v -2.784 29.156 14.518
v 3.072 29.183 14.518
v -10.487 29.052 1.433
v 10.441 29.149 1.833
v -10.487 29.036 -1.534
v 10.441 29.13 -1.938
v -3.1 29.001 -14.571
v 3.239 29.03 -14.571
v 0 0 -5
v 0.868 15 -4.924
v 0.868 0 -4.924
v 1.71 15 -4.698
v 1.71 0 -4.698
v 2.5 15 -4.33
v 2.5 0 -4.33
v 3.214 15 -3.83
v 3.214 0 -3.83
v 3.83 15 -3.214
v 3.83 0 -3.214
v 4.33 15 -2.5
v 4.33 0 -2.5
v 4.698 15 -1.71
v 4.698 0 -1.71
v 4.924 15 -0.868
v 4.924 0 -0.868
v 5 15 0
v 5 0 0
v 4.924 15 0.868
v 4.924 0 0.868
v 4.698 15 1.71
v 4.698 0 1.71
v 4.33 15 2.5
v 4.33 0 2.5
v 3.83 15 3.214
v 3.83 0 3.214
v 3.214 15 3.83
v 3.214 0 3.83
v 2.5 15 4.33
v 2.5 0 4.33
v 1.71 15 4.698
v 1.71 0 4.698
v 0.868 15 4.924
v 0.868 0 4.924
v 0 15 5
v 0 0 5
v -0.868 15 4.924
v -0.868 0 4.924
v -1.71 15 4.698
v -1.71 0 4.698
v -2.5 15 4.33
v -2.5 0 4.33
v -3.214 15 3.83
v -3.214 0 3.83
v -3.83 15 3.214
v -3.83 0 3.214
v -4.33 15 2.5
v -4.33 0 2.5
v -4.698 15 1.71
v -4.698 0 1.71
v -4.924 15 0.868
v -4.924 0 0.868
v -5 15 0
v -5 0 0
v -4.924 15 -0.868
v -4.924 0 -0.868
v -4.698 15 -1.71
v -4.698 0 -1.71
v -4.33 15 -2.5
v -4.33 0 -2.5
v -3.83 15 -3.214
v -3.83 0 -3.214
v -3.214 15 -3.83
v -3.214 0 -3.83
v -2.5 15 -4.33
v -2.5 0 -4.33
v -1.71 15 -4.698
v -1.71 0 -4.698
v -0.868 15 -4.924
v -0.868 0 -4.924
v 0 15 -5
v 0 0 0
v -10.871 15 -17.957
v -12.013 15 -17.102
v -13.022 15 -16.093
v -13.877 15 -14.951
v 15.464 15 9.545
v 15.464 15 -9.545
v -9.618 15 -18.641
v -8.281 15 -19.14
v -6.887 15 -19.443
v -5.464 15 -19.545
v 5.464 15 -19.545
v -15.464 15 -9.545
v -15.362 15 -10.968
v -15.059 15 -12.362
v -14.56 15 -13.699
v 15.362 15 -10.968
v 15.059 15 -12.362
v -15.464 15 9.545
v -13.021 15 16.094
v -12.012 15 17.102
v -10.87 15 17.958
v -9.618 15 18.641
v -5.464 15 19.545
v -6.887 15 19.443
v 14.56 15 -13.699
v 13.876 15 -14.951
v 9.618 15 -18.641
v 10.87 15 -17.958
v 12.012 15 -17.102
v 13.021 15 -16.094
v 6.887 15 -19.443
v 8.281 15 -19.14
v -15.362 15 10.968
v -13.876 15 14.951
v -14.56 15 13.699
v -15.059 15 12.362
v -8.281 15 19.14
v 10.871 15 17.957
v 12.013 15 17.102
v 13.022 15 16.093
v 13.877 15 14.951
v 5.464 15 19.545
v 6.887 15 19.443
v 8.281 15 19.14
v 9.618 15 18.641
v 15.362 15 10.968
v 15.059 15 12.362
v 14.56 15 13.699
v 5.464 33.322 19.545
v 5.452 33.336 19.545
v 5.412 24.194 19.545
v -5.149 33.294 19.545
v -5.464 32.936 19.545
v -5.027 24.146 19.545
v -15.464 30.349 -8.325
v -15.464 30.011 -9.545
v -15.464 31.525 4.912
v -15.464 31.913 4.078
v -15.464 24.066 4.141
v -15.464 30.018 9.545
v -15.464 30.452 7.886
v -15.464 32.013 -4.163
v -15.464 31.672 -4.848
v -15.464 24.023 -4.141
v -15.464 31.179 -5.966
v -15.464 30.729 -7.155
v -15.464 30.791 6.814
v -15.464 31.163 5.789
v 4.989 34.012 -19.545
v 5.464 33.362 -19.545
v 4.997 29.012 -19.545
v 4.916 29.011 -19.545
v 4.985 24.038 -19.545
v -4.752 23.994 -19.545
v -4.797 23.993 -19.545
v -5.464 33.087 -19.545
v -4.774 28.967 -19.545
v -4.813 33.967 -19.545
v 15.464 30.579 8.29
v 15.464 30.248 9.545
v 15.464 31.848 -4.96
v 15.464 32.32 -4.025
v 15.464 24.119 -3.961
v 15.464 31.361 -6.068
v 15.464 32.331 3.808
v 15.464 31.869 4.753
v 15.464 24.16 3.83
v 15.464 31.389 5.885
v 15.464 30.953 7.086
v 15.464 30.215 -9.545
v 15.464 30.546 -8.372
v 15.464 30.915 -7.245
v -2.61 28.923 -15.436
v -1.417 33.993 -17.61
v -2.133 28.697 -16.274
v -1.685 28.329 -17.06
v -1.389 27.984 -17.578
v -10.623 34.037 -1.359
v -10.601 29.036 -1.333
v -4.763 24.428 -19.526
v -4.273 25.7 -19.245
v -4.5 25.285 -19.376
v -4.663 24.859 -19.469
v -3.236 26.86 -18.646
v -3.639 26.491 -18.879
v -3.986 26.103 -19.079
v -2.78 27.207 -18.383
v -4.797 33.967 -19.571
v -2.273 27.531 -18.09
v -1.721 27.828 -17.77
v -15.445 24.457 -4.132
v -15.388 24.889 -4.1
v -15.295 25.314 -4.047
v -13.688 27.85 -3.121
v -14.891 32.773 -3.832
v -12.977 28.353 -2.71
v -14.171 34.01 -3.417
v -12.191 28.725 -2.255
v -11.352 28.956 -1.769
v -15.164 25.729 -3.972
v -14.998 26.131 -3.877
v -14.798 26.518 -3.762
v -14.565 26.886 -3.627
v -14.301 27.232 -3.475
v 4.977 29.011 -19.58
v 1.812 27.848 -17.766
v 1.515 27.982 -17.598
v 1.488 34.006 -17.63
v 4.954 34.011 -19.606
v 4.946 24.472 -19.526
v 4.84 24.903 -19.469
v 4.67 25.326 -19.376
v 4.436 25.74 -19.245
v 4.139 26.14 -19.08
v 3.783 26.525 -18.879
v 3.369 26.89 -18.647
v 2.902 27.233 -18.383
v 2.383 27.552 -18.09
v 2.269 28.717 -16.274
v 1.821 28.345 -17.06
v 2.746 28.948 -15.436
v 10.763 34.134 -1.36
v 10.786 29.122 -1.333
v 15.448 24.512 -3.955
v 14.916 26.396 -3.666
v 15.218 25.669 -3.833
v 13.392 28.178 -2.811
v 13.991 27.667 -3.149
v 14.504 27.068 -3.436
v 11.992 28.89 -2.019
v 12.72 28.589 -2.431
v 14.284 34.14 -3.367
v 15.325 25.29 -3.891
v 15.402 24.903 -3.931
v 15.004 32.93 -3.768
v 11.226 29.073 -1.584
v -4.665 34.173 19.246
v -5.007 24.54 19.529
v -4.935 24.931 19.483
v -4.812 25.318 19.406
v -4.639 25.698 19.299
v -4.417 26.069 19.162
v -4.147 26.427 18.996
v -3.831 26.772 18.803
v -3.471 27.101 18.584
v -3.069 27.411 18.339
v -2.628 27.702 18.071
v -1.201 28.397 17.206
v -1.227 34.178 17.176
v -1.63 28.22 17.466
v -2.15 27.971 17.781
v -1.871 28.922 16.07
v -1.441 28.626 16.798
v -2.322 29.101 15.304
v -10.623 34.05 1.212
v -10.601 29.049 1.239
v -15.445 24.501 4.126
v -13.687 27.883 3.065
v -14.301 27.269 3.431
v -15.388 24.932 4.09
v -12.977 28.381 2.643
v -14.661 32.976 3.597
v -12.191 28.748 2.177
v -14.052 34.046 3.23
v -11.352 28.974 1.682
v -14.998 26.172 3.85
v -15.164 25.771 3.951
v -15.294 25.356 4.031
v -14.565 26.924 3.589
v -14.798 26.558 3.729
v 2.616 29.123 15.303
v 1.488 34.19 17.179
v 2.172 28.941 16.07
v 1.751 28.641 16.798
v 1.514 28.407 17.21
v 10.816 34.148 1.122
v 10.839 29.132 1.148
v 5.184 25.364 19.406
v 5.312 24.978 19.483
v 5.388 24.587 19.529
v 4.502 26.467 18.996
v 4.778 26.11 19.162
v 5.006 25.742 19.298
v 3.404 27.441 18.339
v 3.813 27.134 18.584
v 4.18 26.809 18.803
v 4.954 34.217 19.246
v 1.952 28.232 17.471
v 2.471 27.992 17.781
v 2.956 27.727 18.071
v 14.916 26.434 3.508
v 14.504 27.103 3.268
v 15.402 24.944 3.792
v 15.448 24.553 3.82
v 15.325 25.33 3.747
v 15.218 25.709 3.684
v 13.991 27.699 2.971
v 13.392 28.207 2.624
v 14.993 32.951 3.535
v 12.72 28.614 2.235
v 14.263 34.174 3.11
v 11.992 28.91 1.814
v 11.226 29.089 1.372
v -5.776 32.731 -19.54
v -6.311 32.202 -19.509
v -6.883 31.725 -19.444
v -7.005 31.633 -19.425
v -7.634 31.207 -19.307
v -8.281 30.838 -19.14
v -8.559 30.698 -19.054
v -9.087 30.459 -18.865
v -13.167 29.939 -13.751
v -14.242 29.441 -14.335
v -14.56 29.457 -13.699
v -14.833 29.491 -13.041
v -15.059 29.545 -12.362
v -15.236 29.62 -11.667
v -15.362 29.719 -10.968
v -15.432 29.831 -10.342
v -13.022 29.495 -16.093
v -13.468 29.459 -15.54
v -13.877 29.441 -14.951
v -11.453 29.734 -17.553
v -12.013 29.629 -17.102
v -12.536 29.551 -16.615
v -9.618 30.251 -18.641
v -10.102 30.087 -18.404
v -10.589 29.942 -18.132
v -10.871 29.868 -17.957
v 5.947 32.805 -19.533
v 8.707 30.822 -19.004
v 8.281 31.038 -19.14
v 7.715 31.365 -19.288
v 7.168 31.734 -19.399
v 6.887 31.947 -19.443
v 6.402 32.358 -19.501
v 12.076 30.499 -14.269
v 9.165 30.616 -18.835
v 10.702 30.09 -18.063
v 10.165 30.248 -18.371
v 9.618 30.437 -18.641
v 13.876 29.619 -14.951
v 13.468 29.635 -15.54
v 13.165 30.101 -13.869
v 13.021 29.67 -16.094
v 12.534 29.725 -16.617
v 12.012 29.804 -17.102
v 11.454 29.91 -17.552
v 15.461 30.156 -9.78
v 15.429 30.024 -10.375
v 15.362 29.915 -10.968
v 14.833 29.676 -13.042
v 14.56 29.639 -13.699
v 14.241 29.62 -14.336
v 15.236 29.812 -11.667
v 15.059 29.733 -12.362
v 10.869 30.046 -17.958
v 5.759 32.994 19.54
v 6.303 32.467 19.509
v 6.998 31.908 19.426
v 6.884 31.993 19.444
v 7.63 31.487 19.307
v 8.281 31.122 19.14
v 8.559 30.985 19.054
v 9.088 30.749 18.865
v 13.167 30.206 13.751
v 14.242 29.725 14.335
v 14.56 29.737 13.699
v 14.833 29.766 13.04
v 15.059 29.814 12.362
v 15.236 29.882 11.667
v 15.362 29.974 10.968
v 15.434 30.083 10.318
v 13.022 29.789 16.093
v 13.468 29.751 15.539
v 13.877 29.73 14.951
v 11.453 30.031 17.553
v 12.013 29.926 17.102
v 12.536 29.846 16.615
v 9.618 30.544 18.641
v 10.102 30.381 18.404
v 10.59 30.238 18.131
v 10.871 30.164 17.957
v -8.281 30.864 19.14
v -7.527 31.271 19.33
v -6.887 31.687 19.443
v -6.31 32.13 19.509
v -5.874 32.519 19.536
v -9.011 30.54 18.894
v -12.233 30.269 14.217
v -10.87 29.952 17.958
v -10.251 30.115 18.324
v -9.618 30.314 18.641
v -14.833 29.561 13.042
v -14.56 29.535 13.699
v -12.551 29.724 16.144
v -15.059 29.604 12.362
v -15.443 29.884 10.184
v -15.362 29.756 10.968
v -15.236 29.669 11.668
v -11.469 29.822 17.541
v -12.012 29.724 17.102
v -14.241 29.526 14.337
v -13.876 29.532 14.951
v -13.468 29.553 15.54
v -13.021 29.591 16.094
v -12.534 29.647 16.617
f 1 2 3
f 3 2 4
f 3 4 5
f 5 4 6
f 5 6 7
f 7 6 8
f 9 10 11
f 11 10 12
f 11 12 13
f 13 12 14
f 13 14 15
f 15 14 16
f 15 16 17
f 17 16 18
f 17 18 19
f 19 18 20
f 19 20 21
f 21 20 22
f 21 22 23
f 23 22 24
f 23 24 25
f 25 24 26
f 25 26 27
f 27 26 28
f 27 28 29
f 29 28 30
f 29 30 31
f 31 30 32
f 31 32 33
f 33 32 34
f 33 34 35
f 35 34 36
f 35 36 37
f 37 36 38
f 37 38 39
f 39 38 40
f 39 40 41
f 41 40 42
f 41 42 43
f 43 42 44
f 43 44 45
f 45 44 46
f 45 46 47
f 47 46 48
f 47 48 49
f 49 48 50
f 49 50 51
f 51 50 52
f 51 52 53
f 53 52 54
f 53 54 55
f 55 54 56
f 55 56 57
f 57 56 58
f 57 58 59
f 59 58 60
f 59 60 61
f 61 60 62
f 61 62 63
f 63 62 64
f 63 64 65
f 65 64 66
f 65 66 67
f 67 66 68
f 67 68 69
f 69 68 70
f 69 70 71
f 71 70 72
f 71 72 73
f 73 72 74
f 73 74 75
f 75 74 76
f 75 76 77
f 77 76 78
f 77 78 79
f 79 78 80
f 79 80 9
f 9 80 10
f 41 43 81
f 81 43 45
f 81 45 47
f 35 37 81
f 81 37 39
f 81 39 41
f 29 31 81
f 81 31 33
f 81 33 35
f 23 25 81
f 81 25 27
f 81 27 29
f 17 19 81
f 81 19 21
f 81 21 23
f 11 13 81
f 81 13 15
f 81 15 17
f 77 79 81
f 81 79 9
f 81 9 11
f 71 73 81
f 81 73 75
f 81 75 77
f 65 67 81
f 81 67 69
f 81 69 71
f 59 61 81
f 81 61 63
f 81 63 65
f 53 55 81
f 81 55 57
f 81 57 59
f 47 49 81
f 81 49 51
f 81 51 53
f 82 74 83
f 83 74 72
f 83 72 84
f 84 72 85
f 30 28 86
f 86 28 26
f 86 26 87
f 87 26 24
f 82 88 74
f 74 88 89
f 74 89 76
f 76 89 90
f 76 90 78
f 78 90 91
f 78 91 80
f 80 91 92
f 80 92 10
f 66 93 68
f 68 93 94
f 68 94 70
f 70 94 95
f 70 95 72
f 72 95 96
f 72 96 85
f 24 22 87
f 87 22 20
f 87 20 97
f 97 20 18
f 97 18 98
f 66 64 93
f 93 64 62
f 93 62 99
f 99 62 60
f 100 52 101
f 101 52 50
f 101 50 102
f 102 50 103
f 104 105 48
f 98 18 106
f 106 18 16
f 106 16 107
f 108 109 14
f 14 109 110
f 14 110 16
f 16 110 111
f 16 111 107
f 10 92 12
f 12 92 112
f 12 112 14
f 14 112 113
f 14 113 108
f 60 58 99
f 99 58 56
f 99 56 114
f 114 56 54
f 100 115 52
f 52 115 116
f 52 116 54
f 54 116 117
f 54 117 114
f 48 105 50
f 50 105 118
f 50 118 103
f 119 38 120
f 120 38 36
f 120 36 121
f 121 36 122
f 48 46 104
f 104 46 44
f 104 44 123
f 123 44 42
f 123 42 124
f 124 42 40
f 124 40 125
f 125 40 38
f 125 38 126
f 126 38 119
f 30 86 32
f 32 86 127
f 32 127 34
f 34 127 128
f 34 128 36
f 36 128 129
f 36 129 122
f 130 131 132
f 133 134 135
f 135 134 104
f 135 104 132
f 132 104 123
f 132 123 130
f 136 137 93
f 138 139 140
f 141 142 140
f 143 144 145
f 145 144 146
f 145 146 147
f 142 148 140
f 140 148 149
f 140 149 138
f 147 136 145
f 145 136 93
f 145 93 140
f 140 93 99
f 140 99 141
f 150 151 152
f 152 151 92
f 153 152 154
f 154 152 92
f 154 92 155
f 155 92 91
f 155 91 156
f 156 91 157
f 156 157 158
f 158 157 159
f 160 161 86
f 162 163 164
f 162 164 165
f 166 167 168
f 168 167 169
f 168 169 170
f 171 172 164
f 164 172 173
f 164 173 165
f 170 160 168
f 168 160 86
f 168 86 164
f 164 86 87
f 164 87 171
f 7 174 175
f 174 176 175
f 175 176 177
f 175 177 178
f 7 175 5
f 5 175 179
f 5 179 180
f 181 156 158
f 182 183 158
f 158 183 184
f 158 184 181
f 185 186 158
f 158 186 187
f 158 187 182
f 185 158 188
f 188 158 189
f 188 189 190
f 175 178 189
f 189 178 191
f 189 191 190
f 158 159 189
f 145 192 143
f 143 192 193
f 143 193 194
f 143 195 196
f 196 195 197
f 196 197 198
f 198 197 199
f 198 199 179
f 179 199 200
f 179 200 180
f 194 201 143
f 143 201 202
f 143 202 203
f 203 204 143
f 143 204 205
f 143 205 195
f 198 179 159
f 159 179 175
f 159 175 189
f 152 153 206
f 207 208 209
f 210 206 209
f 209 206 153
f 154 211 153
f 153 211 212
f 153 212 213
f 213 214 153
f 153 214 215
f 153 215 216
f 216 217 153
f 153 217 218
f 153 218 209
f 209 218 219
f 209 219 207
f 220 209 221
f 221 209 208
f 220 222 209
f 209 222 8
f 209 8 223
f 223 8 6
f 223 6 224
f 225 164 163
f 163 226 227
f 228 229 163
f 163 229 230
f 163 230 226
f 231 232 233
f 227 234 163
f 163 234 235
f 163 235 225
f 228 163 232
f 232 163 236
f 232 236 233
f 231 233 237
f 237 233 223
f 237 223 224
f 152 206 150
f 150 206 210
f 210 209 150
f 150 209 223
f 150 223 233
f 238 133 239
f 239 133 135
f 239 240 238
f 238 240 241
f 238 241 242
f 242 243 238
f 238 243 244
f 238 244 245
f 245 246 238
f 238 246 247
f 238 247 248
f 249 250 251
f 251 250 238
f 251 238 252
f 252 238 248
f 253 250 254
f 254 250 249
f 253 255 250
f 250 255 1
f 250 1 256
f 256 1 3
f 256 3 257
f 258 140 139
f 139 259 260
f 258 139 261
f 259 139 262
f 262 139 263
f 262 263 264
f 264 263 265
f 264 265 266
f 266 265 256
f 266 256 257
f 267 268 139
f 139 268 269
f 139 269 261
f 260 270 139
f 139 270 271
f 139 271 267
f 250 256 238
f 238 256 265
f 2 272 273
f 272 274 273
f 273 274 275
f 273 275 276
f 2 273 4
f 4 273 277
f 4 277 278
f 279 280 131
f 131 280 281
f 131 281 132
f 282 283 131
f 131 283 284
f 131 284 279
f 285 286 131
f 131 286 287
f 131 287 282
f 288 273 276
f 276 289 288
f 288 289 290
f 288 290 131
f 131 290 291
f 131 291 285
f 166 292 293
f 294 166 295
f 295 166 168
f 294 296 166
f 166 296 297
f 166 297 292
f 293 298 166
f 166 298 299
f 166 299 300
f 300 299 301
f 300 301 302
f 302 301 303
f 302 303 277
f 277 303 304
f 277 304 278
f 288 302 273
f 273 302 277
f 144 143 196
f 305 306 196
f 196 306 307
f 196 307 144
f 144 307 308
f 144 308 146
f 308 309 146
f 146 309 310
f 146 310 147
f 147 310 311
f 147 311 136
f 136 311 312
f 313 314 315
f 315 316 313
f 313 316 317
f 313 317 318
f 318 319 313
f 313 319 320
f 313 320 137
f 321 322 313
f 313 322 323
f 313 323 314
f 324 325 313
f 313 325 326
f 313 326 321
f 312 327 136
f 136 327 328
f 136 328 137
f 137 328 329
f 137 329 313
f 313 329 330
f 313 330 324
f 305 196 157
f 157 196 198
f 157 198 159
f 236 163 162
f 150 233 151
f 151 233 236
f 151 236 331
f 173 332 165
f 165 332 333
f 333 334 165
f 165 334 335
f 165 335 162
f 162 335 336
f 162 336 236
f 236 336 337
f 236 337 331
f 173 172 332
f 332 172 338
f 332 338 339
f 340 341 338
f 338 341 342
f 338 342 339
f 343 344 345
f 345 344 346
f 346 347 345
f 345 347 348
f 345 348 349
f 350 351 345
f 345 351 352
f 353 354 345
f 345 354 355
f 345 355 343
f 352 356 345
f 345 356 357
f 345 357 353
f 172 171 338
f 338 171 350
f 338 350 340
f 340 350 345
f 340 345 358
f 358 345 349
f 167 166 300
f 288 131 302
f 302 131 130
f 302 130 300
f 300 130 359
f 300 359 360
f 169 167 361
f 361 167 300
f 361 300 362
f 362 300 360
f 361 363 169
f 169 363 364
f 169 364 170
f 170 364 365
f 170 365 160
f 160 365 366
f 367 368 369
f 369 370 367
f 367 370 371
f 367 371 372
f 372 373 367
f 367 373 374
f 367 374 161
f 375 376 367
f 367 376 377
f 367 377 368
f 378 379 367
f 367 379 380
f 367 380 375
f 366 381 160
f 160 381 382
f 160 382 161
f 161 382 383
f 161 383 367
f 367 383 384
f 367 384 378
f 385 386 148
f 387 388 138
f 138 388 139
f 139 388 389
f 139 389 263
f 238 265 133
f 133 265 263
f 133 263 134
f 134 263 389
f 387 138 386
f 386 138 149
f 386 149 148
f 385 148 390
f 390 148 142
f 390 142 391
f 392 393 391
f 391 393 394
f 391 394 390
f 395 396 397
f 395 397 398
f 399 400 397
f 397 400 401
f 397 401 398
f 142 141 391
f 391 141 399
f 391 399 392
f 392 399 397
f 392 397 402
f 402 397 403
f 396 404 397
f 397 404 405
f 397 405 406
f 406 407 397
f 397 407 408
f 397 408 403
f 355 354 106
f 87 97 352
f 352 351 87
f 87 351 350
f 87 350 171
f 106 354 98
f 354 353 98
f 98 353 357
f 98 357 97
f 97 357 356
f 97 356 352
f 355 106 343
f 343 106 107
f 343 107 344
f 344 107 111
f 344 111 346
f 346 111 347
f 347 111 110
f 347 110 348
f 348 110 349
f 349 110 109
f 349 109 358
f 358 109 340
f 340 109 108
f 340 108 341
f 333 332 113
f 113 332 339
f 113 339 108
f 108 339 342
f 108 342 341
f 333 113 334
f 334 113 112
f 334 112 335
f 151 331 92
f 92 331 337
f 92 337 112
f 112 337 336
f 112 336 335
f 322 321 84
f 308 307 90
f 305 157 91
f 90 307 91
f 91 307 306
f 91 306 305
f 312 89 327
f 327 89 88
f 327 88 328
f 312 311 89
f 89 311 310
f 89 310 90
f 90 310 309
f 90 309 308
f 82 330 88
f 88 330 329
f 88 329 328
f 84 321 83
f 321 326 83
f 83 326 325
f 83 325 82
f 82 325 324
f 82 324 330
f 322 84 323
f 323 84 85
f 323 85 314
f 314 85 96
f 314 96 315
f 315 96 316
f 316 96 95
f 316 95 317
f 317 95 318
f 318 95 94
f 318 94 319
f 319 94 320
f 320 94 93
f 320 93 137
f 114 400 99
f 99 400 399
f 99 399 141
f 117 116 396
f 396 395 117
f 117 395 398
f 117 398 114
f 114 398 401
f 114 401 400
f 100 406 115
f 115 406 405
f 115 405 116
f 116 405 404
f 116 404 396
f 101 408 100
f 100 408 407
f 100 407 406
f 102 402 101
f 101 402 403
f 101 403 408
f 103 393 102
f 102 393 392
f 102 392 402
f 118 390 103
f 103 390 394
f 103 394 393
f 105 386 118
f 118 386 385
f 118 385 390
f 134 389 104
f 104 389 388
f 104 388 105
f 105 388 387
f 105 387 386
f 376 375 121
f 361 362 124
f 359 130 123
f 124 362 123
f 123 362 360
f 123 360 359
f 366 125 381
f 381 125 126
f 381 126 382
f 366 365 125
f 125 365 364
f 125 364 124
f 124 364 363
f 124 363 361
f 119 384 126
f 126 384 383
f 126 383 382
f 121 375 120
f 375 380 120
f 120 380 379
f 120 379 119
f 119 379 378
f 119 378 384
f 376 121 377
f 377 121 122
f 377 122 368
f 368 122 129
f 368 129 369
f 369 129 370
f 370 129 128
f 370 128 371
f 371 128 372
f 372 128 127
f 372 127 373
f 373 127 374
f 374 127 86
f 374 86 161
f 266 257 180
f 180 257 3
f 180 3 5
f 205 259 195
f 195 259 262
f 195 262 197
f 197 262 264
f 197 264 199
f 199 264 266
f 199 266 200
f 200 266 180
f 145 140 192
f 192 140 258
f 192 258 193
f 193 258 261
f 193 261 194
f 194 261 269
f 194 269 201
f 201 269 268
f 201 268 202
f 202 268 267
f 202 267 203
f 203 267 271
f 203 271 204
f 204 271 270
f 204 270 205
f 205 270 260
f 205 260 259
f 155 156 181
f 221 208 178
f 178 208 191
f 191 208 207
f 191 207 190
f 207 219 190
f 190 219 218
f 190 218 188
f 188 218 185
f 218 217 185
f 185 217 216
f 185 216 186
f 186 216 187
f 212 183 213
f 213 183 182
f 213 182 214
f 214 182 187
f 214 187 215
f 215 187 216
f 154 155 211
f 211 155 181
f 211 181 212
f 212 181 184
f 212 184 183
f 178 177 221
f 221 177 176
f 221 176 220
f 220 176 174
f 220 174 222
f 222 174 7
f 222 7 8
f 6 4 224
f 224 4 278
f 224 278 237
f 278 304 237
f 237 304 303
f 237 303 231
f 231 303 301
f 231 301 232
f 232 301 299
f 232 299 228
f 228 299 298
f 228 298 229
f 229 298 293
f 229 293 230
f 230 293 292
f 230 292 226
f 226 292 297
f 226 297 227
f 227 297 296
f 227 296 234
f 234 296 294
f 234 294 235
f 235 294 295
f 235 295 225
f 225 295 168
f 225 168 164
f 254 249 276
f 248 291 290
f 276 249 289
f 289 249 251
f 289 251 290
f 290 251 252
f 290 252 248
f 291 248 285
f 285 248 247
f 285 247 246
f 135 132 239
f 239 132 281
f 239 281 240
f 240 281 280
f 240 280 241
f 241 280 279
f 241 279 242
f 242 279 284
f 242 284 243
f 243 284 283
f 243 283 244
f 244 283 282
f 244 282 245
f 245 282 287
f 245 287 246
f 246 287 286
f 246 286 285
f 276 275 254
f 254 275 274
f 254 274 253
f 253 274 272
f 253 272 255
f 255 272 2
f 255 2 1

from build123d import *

# Parameters (mm, degrees)
SKETCH1_R           = 5
BOSS_EXTRUDE1_DEPTH = 15
BOSS_EXTRUDE2_REACH = 18.583
SKETCH3_W           = 30.927843762
SKETCH3_H           = 39.089679092
BOSS_EXTRUDE3_DEPTH = 5
FILLET3_R           = 10
FILLET4_R           = 10
FILLET5_R           = 5


with BuildPart() as part:
    # Sketch1 → Boss-Extrude1 (new body)
    with BuildSketch(Plane(origin=(0, 0, 0), x_dir=(1, 0, 0), z_dir=(0, 1, 0))):
        with Locations(Location((0, 0, 0), (0, 0, 270))):
            Circle(SKETCH1_R)
    extrude(amount=BOSS_EXTRUDE1_DEPTH)

    # Boss-Extrude2: up to this plane
    boss_extrude2_end = Plane(origin=(-9.846603066, 29.165234705, 22.263489811), z_dir=(0.00455125846969128, -0.999975636016732, 0.005292770472472197))
    # Sketch3 → Boss-Extrude2 (add, up to the surface)
    with BuildSketch(Plane(origin=(0, 15, 0), x_dir=(0.9999999999274632, 0, -1.2044654693728269e-05), z_dir=(0, 1, 0)), mode=Mode.PRIVATE) as boss_extrude2_sk1:
        Rectangle(SKETCH3_W, SKETCH3_H)
    boss_extrude2_tool1 = split(extrude(boss_extrude2_sk1.sketch, amount=BOSS_EXTRUDE2_REACH, mode=Mode.PRIVATE), bisect_by=boss_extrude2_end, keep=Keep.BOTH, mode=Mode.PRIVATE)
    add(boss_extrude2_tool1.solids().sort_by_distance((0, 15, 0))[0])

    # Sketch4 → Boss-Extrude3 (add)
    with BuildSketch(Plane(origin=(-0.13240295, 29.090794233, -0.153974648), x_dir=(0.999989642969537, 0.004551194719768432, -2.408901593164283e-05), z_dir=(-0.00455125846969128, 0.9999756360167321, -0.005292770472472199))):
        Polygon((-10.468446008, 1.179056561), (-14.015647607, 3.23739849), (-4.642053476, 19.39119083), (-1.261524033, 17.429564094), align=None)
        Polygon((1.642950919, 17.449824818), (10.918190552, 1.179056561), (14.439586423, 3.186447364), (5.10941674, 19.425902448), align=None)
        Polygon((-4.509809714, -19.426615257), (-1.0720352, -17.35621268), (-10.468446008, -1.392474744), (-13.897089917, -3.410607765), align=None)
        Polygon((1.642950919, -17.359692849), (5.10941674, -19.426615257), (14.418460095, -3.291199551), (10.971474425, -1.302521996), align=None)
    extrude(amount=BOSS_EXTRUDE3_DEPTH)

    # Fillet3
    # the kernel refuses this fillet: 10 mm, written as the material it adds along each edge
    with BuildSketch(Plane(origin=(-14.147905396, 29.009871307, -3.390990168), x_dir=(-0.8649200924486613, -0.00659289857656894, -0.5018662843496846), z_dir=(0.501888951586844, -0.0022937003490612054, -0.8649290255354872))) as fillet3_piece_1_section:
        with BuildLine():
            CenterArc((8.660254038, 10), FILLET3_R, 210, 60)
            Line((0, 5), (0, 0))
            Line((0, 0), (8.660254038, 0))
        make_face()
    fillet3_piece_1 = extrude(amount=40.327071422, mode=Mode.PRIVATE)
    fillet3_piece_1 = split(fillet3_piece_1, bisect_by=Plane(origin=(-14.148099961, 29.009871307, -19.544669139), z_dir=(1.2044654693728269e-05, 0, 0.9999999999274632)), keep=Keep.TOP, mode=Mode.PRIVATE)
    fillet3_piece_1 = split(fillet3_piece_1, bisect_by=Plane(origin=(-15.463962725, 29.009871307, -3.390974317), z_dir=(0.9999999999274632, 0, -1.2044654693728269e-05)), keep=Keep.TOP, mode=Mode.PRIVATE)
    add(fillet3_piece_1)
    with BuildSketch(Plane(origin=(25.092607476, 29.288095335, 15.431577947), x_dir=(0.8670707080024372, 0.0013095245658877922, -0.4981833723334847), z_dir=(-0.4981643035891815, -0.006856567533653001, -0.8670555426909873))) as fillet3_piece_2_section:
        with BuildLine():
            CenterArc((8.660254038, -10), FILLET3_R, 90, 60)
            Line((0, -5), (0, 0))
            Line((0, 0), (8.660254038, 0))
        make_face()
    fillet3_piece_2 = extrude(amount=61.99000894, mode=Mode.PRIVATE)
    fillet3_piece_2 = split(fillet3_piece_2, bisect_by=Plane(origin=(25.092186194, 29.288095335, -19.545141774), z_dir=(1.2044654693728269e-05, 0, 0.9999999999274632)), keep=Keep.TOP, mode=Mode.PRIVATE)
    fillet3_piece_2 = split(fillet3_piece_2, bisect_by=Plane(origin=(15.464107751, 29.288095335, 15.431693919), z_dir=(-0.9999999999274632, 0, 1.2044654693728269e-05)), keep=Keep.TOP, mode=Mode.PRIVATE)
    fillet3_piece_2 = split(fillet3_piece_2, bisect_by=Plane(origin=(14.370532456, 29.1397437, -3.376924296), z_dir=(-0.4952342540982205, -0.006852107536017414, -0.8687324571984713)), keep=Keep.TOP, mode=Mode.PRIVATE)
    add(fillet3_piece_2)
    with BuildSketch(Plane(origin=(-5.84236608, 29.266886921, 38.025636113), x_dir=(0.8661731369644169, 0.006587138984293146, 0.49970061677090505), z_dir=(0.49972330628815326, -0.0023101889389853464, -0.8661820133086942))) as fillet3_piece_3_section:
        with BuildLine():
            CenterArc((8.660254038, -10), FILLET3_R, 90, 60)
            Line((0, -5), (0, 0))
            Line((0, 0), (8.660254038, 0))
        make_face()
    fillet3_piece_3 = extrude(amount=40.27883759, mode=Mode.PRIVATE)
    fillet3_piece_3 = split(fillet3_piece_3, bisect_by=Plane(origin=(15.464379885, 29.266886921, 38.02537948), z_dir=(-0.9999999999274632, 0, 1.2044654693728269e-05)), keep=Keep.TOP, mode=Mode.PRIVATE)
    fillet3_piece_3 = split(fillet3_piece_3, bisect_by=Plane(origin=(-5.842588674, 29.266886921, 19.54490992), z_dir=(-1.2044654693728269e-05, 0, -0.9999999999274632)), keep=Keep.TOP, mode=Mode.PRIVATE)
    fillet3_piece_3 = split(fillet3_piece_3, bisect_by=Plane(origin=(5.244381098, 29.218930921, 19.431690955), z_dir=(0.5121278759381178, -0.0022152218479130122, -0.8589063578058298)), keep=Keep.TOP, mode=Mode.PRIVATE)
    add(fillet3_piece_3)
    with BuildSketch(Plane(origin=(-24.977156683, 28.89690852, -15.421232823), x_dir=(-0.8627222599150277, -0.0012500727128449166, 0.5056765167232111), z_dir=(0.5056575800810756, 0.006867655432883244, 0.8627069299683444))) as fillet3_piece_4_section:
        with BuildLine():
            CenterArc((8.660254038, -10), FILLET3_R, 90, 60)
            Line((0, -5), (0, 0))
            Line((0, 0), (8.660254038, 0))
        make_face()
    fillet3_piece_4 = extrude(amount=61.865578029, mode=Mode.PRIVATE)
    fillet3_piece_4 = split(fillet3_piece_4, bisect_by=Plane(origin=(-15.464107627, 28.89690852, -15.421347404), z_dir=(0.9999999999274632, 0, -1.2044654693728269e-05)), keep=Keep.TOP, mode=Mode.PRIVATE)
    fillet3_piece_4 = split(fillet3_piece_4, bisect_by=Plane(origin=(-24.976735525, 28.89690852, 19.545140384), z_dir=(-1.2044654693728269e-05, 0, -0.9999999999274632)), keep=Keep.TOP, mode=Mode.PRIVATE)
    fillet3_piece_4 = split(fillet3_piece_4, bisect_by=Plane(origin=(-13.994792141, 29.045647238, 3.236578891), z_dir=(0.5072545599631075, 0.006869958912506911, 0.8617688872668674)), keep=Keep.TOP, mode=Mode.PRIVATE)
    fillet3_piece_4 = split(fillet3_piece_4, bisect_by=Plane(origin=(-4.231441732, 29.173650955, 19.025109137), z_dir=(-0.5159074727393343, -0.006882071338550758, -0.8566166684496653)), keep=Keep.TOP, mode=Mode.PRIVATE)
    add(fillet3_piece_4)

    # Fillet4
    fillet4_edges = [part.edges().sort_by_distance(p)[0] for p in [
        (15.463686469, 22.029571456, -19.545025802),
        (-15.464157291, 21.959190422, -19.544653287),
        (-15.463686469, 22.062640363, 19.545025802),
        (15.464157291, 22.133021398, 19.544653287),
    ]]
    fillet(fillet4_edges, radius=FILLET4_R)

    # Fillet5
    # the kernel refuses this fillet: 5 mm, written as the material it takes off along each edge
    with BuildSketch(Plane(origin=(-15.464121796, 28.933978949, -16.597696934), x_dir=(6.375187728904126e-08, -0.9999859926119807, 0.00529288010702584), z_dir=(1.2044485979576416e-05, 0.005292880107409781, 0.999985992539445))) as fillet5_piece_1_section:
        with BuildLine():
            CenterArc((FILLET5_R * 0.995459114993, FILLET5_R), FILLET5_R, 180.260765149, 89.739234851)
            Line((-FILLET5_R * 0.00453052826693, FILLET5_R * 0.99544880528), (0, 0))
            Line((0, 0), (FILLET5_R * 0.995459114992, 0))
        make_face()
    fillet5_piece_1 = extrude(amount=33.142551861, mode=Mode.PRIVATE)
    fillet5_piece_1 = split(fillet5_piece_1, bisect_by=Plane(origin=(-6.415383651, 29.056529763, -1.224900675), z_dir=(-0.507254559962968, -0.006869958912999567, -0.8617688872669456)), keep=Keep.TOP, mode=Mode.PRIVATE)
    fillet5_piece_1 = split(fillet5_piece_1, bisect_by=Plane(origin=(-5.235440397, 29.011205363, -10.802781085), z_dir=(0.8700521889032995, 0.006568882911342859, 0.4929158532263639)), keep=Keep.TOP, mode=Mode.PRIVATE)
    add(fillet5_piece_1, mode=Mode.SUBTRACT)
    with BuildSketch(Plane(origin=(-15.464121796, 28.933978949, -16.597696934), x_dir=(6.375187728904126e-08, -0.9999859926119807, 0.00529288010702584), z_dir=(1.2044485979576416e-05, 0.005292880107409781, 0.999985992539445))) as fillet5_piece_2_section:
        with BuildLine():
            CenterArc((FILLET5_R * 0.995459114993, FILLET5_R), FILLET5_R, 180.260765149, 89.739234851)
            Line((-FILLET5_R * 0.00453052826693, FILLET5_R * 0.99544880528), (0, 0))
            Line((0, 0), (FILLET5_R * 0.995459114992, 0))
        make_face()
    fillet5_piece_2 = extrude(amount=33.142551861, mode=Mode.PRIVATE)
    fillet5_piece_2 = split(fillet5_piece_2, bisect_by=Plane(origin=(-20.86567334, 28.95866477, -7.288947062), z_dir=(-0.5018889515871722, 0.002293700349000787, 0.8649290255352967)), keep=Keep.TOP, mode=Mode.PRIVATE)
    fillet5_piece_2 = split(fillet5_piece_2, bisect_by=Plane(origin=(-19.64947868, 28.927969608, -14.134063493), z_dir=(0.8617842522597962, 0.0012373509900901443, -0.507273468180183)), keep=Keep.TOP, mode=Mode.PRIVATE)
    add(fillet5_piece_2, mode=Mode.SUBTRACT)
    with BuildSketch(Plane(origin=(-15.464121796, 28.933978949, -16.597696934), x_dir=(6.375187728904126e-08, -0.9999859926119807, 0.00529288010702584), z_dir=(1.2044485979576416e-05, 0.005292880107409781, 0.999985992539445))) as fillet5_piece_3_section:
        with BuildLine():
            CenterArc((FILLET5_R * 0.995459114993, FILLET5_R), FILLET5_R, 180.260765149, 89.739234851)
            Line((-FILLET5_R * 0.00453052826693, FILLET5_R * 0.99544880528), (0, 0))
            Line((0, 0), (FILLET5_R * 0.995459114992, 0))
        make_face()
    fillet5_piece_3 = extrude(amount=33.142551861, mode=Mode.PRIVATE)
    fillet5_piece_3 = split(fillet5_piece_3, bisect_by=Plane(origin=(-6.415383651, 29.056529763, -1.224900675), z_dir=(-0.507254559962968, -0.006869958912999567, -0.8617688872669456)), keep=Keep.TOP, mode=Mode.PRIVATE)
    fillet5_piece_3 = split(fillet5_piece_3, bisect_by=Plane(origin=(-20.86567334, 28.95866477, -7.288947062), z_dir=(-0.5018889515871722, 0.002293700349000787, 0.8649290255352967)), keep=Keep.TOP, mode=Mode.PRIVATE)
    add(fillet5_piece_3, mode=Mode.SUBTRACT)
    with BuildSketch(Plane(origin=(17.349750172, 29.067726965, -19.545048519), x_dir=(-1.2044529946827532e-05, 0.005292770472472884, 0.9999859931197312), z_dir=(-0.9999896428970009, -0.00455125846969128, 1.2044529946872691e-05))) as fillet5_piece_4_section:
        with BuildLine():
            CenterArc((FILLET5_R * 0.994721107865, -FILLET5_R), FILLET5_R, 90, 89.696742033)
            Line((-FILLET5_R * 0.00526488503663, -FILLET5_R * 0.99470717471), (0, 0))
            Line((0, 0), (FILLET5_R * 0.994721107865, 0))
        make_face()
    fillet5_piece_4 = extrude(amount=34.558401512, mode=Mode.PRIVATE)
    fillet5_piece_4 = split(fillet5_piece_4, bisect_by=Plane(origin=(14.300125636, 29.025532074, -24.894653871), z_dir=(-0.49523425409822125, -0.006852107536017416, -0.8687324571984709)), keep=Keep.TOP, mode=Mode.PRIVATE)
    fillet5_piece_4 = split(fillet5_piece_4, bisect_by=Plane(origin=(4.001876218, 28.966950687, -27.107099121), z_dir=(0.8700521889032995, 0.006568882911342859, 0.4929158532263639)), keep=Keep.TOP, mode=Mode.PRIVATE)
    add(fillet5_piece_4, mode=Mode.SUBTRACT)
    with BuildSketch(Plane(origin=(17.349750172, 29.067726965, -19.545048519), x_dir=(-1.2044529946827532e-05, 0.005292770472472884, 0.9999859931197312), z_dir=(-0.9999896428970009, -0.00455125846969128, 1.2044529946872691e-05))) as fillet5_piece_5_section:
        with BuildLine():
            CenterArc((FILLET5_R * 0.994721107865, -FILLET5_R), FILLET5_R, 90, 89.696742033)
            Line((-FILLET5_R * 0.00526488503663, -FILLET5_R * 0.99470717471), (0, 0))
            Line((0, 0), (FILLET5_R * 0.994721107865, 0))
        make_face()
    fillet5_piece_5 = extrude(amount=34.558401512, mode=Mode.PRIVATE)
    fillet5_piece_5 = split(fillet5_piece_5, bisect_by=Plane(origin=(11.776840375, 29.093195916, -9.940988847), z_dir=(0.5018889515868442, -0.002293700349061202, -0.8649290255354869)), keep=Keep.TOP, mode=Mode.PRIVATE)
    fillet5_piece_5 = split(fillet5_piece_5, bisect_by=Plane(origin=(4.560155488, 29.048107639, -12.25398927), z_dir=(-0.868747558047861, -0.0013326647166724062, 0.4952533739315984)), keep=Keep.TOP, mode=Mode.PRIVATE)
    add(fillet5_piece_5, mode=Mode.SUBTRACT)
    with BuildSketch(Plane(origin=(17.349750172, 29.067726965, -19.545048519), x_dir=(-1.2044529946827532e-05, 0.005292770472472884, 0.9999859931197312), z_dir=(-0.9999896428970009, -0.00455125846969128, 1.2044529946872691e-05))) as fillet5_piece_6_section:
        with BuildLine():
            CenterArc((FILLET5_R * 0.994721107865, -FILLET5_R), FILLET5_R, 90, 89.696742033)
            Line((-FILLET5_R * 0.00526488503663, -FILLET5_R * 0.99470717471), (0, 0))
            Line((0, 0), (FILLET5_R * 0.994721107865, 0))
        make_face()
    fillet5_piece_6 = extrude(amount=34.558401512, mode=Mode.PRIVATE)
    fillet5_piece_6 = split(fillet5_piece_6, bisect_by=Plane(origin=(4.560155488, 29.048107639, -12.25398927), z_dir=(-0.868747558047861, -0.0013326647166724062, 0.4952533739315984)), keep=Keep.TOP, mode=Mode.PRIVATE)
    fillet5_piece_6 = split(fillet5_piece_6, bisect_by=Plane(origin=(4.001876218, 28.966950687, -27.107099121), z_dir=(0.8700521889032995, 0.006568882911342859, 0.4929158532263639)), keep=Keep.TOP, mode=Mode.PRIVATE)
    add(fillet5_piece_6, mode=Mode.SUBTRACT)
    with BuildSketch(Plane(origin=(15.464119093, 29.249256998, 16.373305657), x_dir=(-0.9999896428970014, -0.004551130969418724, 3.613345794583441e-05), z_dir=(-1.2044485979576416e-05, -0.005292880107409781, -0.999985992539445))) as fillet5_piece_7_section:
        with BuildLine():
            CenterArc((FILLET5_R * 1.00456159871, -FILLET5_R), FILLET5_R, 90, 90.260765149)
            Line((FILLET5_R * 0.00457195544606, -FILLET5_R * 1.00455119472), (0, 0))
            Line((0, 0), (FILLET5_R * 1.00456159871, 0))
        make_face()
    fillet5_piece_7 = extrude(amount=32.930824487, mode=Mode.PRIVATE)
    fillet5_piece_7 = split(fillet5_piece_7, bisect_by=Plane(origin=(6.698473906, 29.12797471, 0.996743114), z_dir=(0.495234254098257, 0.006852107536003555, 0.8687324571984507)), keep=Keep.TOP, mode=Mode.PRIVATE)
    fillet5_piece_7 = split(fillet5_piece_7, bisect_by=Plane(origin=(20.899404838, 29.224130019, 6.952198636), z_dir=(0.49972330628790584, -0.002310188938999564, -0.8661820133088368)), keep=Keep.TOP, mode=Mode.PRIVATE)
    add(fillet5_piece_7, mode=Mode.SUBTRACT)
    with BuildSketch(Plane(origin=(15.464119093, 29.249256998, 16.373305657), x_dir=(-0.9999896428970014, -0.004551130969418724, 3.613345794583441e-05), z_dir=(-1.2044485979576416e-05, -0.005292880107409781, -0.999985992539445))) as fillet5_piece_8_section:
        with BuildLine():
            CenterArc((FILLET5_R * 1.00456159871, -FILLET5_R), FILLET5_R, 90, 90.260765149)
            Line((FILLET5_R * 0.00457195544606, -FILLET5_R * 1.00455119472), (0, 0))
            Line((0, 0), (FILLET5_R * 1.00456159871, 0))
        make_face()
    fillet5_piece_8 = extrude(amount=32.930824487, mode=Mode.PRIVATE)
    fillet5_piece_8 = split(fillet5_piece_8, bisect_by=Plane(origin=(19.551319708, 29.255526792, 14.043284841), z_dir=(-0.868747558047861, -0.0013326647166724062, 0.4952533739315984)), keep=Keep.TOP, mode=Mode.PRIVATE)
    fillet5_piece_8 = split(fillet5_piece_8, bisect_by=Plane(origin=(5.392911116, 29.172452185, 10.522632292), z_dir=(-0.8646629334649698, -0.0065940724447949885, -0.5023091973081381)), keep=Keep.TOP, mode=Mode.PRIVATE)
    add(fillet5_piece_8, mode=Mode.SUBTRACT)
    with BuildSketch(Plane(origin=(-17.660698405, 29.115281454, 19.545052265), x_dir=(0.004551258469361128, -0.9999896429695371, -5.481978292389559e-08), z_dir=(0.9999896428970009, 0.00455125846969128, -1.2044529946872691e-05))) as fillet5_piece_9_section:
        with BuildLine():
            CenterArc((FILLET5_R * 1.00530690672, FILLET5_R), FILLET5_R, 179.696742033, 90.303257967)
            Line((FILLET5_R * 0.00532091382199, FILLET5_R * 1.00529282529), (0, 0))
            Line((0, 0), (FILLET5_R * 1.00530690672, 0))
        make_face()
    fillet5_piece_9 = extrude(amount=35.66131678, mode=Mode.PRIVATE)
    fillet5_piece_9 = split(fillet5_piece_9, bisect_by=Plane(origin=(-4.414737867, 29.134300022, 11.748060936), z_dir=(0.8617842522597962, 0.0012373509900901443, -0.507273468180183)), keep=Keep.TOP, mode=Mode.PRIVATE)
    fillet5_piece_9 = split(fillet5_piece_9, bisect_by=Plane(origin=(-4.343216894, 29.216842923, 27.281585414), z_dir=(-0.8646629334649698, -0.0065940724447949885, -0.5023091973081381)), keep=Keep.TOP, mode=Mode.PRIVATE)
    add(fillet5_piece_9, mode=Mode.SUBTRACT)
    with BuildSketch(Plane(origin=(-17.660698405, 29.115281454, 19.545052265), x_dir=(0.004551258469361128, -0.9999896429695371, -5.481978292389559e-08), z_dir=(0.9999896428970009, 0.00455125846969128, -1.2044529946872691e-05))) as fillet5_piece_10_section:
        with BuildLine():
            CenterArc((FILLET5_R * 1.00530690672, FILLET5_R), FILLET5_R, 179.696742033, 90.303257967)
            Line((FILLET5_R * 0.00532091382199, FILLET5_R * 1.00529282529), (0, 0))
            Line((0, 0), (FILLET5_R * 1.00530690672, 0))
        make_face()
    fillet5_piece_10 = extrude(amount=35.66131678, mode=Mode.PRIVATE)
    fillet5_piece_10 = split(fillet5_piece_10, bisect_by=Plane(origin=(-14.315934254, 29.159899737, 25.098723951), z_dir=(0.5159074727389396, 0.006882071338999195, 0.8566166684498997)), keep=Keep.TOP, mode=Mode.PRIVATE)
    fillet5_piece_10 = split(fillet5_piece_10, bisect_by=Plane(origin=(-11.603522926, 29.089080991, 9.386365784), z_dir=(-0.5121278759379562, 0.00221522184799981, 0.8589063578059263)), keep=Keep.TOP, mode=Mode.PRIVATE)
    add(fillet5_piece_10, mode=Mode.SUBTRACT)


solid = part.part
